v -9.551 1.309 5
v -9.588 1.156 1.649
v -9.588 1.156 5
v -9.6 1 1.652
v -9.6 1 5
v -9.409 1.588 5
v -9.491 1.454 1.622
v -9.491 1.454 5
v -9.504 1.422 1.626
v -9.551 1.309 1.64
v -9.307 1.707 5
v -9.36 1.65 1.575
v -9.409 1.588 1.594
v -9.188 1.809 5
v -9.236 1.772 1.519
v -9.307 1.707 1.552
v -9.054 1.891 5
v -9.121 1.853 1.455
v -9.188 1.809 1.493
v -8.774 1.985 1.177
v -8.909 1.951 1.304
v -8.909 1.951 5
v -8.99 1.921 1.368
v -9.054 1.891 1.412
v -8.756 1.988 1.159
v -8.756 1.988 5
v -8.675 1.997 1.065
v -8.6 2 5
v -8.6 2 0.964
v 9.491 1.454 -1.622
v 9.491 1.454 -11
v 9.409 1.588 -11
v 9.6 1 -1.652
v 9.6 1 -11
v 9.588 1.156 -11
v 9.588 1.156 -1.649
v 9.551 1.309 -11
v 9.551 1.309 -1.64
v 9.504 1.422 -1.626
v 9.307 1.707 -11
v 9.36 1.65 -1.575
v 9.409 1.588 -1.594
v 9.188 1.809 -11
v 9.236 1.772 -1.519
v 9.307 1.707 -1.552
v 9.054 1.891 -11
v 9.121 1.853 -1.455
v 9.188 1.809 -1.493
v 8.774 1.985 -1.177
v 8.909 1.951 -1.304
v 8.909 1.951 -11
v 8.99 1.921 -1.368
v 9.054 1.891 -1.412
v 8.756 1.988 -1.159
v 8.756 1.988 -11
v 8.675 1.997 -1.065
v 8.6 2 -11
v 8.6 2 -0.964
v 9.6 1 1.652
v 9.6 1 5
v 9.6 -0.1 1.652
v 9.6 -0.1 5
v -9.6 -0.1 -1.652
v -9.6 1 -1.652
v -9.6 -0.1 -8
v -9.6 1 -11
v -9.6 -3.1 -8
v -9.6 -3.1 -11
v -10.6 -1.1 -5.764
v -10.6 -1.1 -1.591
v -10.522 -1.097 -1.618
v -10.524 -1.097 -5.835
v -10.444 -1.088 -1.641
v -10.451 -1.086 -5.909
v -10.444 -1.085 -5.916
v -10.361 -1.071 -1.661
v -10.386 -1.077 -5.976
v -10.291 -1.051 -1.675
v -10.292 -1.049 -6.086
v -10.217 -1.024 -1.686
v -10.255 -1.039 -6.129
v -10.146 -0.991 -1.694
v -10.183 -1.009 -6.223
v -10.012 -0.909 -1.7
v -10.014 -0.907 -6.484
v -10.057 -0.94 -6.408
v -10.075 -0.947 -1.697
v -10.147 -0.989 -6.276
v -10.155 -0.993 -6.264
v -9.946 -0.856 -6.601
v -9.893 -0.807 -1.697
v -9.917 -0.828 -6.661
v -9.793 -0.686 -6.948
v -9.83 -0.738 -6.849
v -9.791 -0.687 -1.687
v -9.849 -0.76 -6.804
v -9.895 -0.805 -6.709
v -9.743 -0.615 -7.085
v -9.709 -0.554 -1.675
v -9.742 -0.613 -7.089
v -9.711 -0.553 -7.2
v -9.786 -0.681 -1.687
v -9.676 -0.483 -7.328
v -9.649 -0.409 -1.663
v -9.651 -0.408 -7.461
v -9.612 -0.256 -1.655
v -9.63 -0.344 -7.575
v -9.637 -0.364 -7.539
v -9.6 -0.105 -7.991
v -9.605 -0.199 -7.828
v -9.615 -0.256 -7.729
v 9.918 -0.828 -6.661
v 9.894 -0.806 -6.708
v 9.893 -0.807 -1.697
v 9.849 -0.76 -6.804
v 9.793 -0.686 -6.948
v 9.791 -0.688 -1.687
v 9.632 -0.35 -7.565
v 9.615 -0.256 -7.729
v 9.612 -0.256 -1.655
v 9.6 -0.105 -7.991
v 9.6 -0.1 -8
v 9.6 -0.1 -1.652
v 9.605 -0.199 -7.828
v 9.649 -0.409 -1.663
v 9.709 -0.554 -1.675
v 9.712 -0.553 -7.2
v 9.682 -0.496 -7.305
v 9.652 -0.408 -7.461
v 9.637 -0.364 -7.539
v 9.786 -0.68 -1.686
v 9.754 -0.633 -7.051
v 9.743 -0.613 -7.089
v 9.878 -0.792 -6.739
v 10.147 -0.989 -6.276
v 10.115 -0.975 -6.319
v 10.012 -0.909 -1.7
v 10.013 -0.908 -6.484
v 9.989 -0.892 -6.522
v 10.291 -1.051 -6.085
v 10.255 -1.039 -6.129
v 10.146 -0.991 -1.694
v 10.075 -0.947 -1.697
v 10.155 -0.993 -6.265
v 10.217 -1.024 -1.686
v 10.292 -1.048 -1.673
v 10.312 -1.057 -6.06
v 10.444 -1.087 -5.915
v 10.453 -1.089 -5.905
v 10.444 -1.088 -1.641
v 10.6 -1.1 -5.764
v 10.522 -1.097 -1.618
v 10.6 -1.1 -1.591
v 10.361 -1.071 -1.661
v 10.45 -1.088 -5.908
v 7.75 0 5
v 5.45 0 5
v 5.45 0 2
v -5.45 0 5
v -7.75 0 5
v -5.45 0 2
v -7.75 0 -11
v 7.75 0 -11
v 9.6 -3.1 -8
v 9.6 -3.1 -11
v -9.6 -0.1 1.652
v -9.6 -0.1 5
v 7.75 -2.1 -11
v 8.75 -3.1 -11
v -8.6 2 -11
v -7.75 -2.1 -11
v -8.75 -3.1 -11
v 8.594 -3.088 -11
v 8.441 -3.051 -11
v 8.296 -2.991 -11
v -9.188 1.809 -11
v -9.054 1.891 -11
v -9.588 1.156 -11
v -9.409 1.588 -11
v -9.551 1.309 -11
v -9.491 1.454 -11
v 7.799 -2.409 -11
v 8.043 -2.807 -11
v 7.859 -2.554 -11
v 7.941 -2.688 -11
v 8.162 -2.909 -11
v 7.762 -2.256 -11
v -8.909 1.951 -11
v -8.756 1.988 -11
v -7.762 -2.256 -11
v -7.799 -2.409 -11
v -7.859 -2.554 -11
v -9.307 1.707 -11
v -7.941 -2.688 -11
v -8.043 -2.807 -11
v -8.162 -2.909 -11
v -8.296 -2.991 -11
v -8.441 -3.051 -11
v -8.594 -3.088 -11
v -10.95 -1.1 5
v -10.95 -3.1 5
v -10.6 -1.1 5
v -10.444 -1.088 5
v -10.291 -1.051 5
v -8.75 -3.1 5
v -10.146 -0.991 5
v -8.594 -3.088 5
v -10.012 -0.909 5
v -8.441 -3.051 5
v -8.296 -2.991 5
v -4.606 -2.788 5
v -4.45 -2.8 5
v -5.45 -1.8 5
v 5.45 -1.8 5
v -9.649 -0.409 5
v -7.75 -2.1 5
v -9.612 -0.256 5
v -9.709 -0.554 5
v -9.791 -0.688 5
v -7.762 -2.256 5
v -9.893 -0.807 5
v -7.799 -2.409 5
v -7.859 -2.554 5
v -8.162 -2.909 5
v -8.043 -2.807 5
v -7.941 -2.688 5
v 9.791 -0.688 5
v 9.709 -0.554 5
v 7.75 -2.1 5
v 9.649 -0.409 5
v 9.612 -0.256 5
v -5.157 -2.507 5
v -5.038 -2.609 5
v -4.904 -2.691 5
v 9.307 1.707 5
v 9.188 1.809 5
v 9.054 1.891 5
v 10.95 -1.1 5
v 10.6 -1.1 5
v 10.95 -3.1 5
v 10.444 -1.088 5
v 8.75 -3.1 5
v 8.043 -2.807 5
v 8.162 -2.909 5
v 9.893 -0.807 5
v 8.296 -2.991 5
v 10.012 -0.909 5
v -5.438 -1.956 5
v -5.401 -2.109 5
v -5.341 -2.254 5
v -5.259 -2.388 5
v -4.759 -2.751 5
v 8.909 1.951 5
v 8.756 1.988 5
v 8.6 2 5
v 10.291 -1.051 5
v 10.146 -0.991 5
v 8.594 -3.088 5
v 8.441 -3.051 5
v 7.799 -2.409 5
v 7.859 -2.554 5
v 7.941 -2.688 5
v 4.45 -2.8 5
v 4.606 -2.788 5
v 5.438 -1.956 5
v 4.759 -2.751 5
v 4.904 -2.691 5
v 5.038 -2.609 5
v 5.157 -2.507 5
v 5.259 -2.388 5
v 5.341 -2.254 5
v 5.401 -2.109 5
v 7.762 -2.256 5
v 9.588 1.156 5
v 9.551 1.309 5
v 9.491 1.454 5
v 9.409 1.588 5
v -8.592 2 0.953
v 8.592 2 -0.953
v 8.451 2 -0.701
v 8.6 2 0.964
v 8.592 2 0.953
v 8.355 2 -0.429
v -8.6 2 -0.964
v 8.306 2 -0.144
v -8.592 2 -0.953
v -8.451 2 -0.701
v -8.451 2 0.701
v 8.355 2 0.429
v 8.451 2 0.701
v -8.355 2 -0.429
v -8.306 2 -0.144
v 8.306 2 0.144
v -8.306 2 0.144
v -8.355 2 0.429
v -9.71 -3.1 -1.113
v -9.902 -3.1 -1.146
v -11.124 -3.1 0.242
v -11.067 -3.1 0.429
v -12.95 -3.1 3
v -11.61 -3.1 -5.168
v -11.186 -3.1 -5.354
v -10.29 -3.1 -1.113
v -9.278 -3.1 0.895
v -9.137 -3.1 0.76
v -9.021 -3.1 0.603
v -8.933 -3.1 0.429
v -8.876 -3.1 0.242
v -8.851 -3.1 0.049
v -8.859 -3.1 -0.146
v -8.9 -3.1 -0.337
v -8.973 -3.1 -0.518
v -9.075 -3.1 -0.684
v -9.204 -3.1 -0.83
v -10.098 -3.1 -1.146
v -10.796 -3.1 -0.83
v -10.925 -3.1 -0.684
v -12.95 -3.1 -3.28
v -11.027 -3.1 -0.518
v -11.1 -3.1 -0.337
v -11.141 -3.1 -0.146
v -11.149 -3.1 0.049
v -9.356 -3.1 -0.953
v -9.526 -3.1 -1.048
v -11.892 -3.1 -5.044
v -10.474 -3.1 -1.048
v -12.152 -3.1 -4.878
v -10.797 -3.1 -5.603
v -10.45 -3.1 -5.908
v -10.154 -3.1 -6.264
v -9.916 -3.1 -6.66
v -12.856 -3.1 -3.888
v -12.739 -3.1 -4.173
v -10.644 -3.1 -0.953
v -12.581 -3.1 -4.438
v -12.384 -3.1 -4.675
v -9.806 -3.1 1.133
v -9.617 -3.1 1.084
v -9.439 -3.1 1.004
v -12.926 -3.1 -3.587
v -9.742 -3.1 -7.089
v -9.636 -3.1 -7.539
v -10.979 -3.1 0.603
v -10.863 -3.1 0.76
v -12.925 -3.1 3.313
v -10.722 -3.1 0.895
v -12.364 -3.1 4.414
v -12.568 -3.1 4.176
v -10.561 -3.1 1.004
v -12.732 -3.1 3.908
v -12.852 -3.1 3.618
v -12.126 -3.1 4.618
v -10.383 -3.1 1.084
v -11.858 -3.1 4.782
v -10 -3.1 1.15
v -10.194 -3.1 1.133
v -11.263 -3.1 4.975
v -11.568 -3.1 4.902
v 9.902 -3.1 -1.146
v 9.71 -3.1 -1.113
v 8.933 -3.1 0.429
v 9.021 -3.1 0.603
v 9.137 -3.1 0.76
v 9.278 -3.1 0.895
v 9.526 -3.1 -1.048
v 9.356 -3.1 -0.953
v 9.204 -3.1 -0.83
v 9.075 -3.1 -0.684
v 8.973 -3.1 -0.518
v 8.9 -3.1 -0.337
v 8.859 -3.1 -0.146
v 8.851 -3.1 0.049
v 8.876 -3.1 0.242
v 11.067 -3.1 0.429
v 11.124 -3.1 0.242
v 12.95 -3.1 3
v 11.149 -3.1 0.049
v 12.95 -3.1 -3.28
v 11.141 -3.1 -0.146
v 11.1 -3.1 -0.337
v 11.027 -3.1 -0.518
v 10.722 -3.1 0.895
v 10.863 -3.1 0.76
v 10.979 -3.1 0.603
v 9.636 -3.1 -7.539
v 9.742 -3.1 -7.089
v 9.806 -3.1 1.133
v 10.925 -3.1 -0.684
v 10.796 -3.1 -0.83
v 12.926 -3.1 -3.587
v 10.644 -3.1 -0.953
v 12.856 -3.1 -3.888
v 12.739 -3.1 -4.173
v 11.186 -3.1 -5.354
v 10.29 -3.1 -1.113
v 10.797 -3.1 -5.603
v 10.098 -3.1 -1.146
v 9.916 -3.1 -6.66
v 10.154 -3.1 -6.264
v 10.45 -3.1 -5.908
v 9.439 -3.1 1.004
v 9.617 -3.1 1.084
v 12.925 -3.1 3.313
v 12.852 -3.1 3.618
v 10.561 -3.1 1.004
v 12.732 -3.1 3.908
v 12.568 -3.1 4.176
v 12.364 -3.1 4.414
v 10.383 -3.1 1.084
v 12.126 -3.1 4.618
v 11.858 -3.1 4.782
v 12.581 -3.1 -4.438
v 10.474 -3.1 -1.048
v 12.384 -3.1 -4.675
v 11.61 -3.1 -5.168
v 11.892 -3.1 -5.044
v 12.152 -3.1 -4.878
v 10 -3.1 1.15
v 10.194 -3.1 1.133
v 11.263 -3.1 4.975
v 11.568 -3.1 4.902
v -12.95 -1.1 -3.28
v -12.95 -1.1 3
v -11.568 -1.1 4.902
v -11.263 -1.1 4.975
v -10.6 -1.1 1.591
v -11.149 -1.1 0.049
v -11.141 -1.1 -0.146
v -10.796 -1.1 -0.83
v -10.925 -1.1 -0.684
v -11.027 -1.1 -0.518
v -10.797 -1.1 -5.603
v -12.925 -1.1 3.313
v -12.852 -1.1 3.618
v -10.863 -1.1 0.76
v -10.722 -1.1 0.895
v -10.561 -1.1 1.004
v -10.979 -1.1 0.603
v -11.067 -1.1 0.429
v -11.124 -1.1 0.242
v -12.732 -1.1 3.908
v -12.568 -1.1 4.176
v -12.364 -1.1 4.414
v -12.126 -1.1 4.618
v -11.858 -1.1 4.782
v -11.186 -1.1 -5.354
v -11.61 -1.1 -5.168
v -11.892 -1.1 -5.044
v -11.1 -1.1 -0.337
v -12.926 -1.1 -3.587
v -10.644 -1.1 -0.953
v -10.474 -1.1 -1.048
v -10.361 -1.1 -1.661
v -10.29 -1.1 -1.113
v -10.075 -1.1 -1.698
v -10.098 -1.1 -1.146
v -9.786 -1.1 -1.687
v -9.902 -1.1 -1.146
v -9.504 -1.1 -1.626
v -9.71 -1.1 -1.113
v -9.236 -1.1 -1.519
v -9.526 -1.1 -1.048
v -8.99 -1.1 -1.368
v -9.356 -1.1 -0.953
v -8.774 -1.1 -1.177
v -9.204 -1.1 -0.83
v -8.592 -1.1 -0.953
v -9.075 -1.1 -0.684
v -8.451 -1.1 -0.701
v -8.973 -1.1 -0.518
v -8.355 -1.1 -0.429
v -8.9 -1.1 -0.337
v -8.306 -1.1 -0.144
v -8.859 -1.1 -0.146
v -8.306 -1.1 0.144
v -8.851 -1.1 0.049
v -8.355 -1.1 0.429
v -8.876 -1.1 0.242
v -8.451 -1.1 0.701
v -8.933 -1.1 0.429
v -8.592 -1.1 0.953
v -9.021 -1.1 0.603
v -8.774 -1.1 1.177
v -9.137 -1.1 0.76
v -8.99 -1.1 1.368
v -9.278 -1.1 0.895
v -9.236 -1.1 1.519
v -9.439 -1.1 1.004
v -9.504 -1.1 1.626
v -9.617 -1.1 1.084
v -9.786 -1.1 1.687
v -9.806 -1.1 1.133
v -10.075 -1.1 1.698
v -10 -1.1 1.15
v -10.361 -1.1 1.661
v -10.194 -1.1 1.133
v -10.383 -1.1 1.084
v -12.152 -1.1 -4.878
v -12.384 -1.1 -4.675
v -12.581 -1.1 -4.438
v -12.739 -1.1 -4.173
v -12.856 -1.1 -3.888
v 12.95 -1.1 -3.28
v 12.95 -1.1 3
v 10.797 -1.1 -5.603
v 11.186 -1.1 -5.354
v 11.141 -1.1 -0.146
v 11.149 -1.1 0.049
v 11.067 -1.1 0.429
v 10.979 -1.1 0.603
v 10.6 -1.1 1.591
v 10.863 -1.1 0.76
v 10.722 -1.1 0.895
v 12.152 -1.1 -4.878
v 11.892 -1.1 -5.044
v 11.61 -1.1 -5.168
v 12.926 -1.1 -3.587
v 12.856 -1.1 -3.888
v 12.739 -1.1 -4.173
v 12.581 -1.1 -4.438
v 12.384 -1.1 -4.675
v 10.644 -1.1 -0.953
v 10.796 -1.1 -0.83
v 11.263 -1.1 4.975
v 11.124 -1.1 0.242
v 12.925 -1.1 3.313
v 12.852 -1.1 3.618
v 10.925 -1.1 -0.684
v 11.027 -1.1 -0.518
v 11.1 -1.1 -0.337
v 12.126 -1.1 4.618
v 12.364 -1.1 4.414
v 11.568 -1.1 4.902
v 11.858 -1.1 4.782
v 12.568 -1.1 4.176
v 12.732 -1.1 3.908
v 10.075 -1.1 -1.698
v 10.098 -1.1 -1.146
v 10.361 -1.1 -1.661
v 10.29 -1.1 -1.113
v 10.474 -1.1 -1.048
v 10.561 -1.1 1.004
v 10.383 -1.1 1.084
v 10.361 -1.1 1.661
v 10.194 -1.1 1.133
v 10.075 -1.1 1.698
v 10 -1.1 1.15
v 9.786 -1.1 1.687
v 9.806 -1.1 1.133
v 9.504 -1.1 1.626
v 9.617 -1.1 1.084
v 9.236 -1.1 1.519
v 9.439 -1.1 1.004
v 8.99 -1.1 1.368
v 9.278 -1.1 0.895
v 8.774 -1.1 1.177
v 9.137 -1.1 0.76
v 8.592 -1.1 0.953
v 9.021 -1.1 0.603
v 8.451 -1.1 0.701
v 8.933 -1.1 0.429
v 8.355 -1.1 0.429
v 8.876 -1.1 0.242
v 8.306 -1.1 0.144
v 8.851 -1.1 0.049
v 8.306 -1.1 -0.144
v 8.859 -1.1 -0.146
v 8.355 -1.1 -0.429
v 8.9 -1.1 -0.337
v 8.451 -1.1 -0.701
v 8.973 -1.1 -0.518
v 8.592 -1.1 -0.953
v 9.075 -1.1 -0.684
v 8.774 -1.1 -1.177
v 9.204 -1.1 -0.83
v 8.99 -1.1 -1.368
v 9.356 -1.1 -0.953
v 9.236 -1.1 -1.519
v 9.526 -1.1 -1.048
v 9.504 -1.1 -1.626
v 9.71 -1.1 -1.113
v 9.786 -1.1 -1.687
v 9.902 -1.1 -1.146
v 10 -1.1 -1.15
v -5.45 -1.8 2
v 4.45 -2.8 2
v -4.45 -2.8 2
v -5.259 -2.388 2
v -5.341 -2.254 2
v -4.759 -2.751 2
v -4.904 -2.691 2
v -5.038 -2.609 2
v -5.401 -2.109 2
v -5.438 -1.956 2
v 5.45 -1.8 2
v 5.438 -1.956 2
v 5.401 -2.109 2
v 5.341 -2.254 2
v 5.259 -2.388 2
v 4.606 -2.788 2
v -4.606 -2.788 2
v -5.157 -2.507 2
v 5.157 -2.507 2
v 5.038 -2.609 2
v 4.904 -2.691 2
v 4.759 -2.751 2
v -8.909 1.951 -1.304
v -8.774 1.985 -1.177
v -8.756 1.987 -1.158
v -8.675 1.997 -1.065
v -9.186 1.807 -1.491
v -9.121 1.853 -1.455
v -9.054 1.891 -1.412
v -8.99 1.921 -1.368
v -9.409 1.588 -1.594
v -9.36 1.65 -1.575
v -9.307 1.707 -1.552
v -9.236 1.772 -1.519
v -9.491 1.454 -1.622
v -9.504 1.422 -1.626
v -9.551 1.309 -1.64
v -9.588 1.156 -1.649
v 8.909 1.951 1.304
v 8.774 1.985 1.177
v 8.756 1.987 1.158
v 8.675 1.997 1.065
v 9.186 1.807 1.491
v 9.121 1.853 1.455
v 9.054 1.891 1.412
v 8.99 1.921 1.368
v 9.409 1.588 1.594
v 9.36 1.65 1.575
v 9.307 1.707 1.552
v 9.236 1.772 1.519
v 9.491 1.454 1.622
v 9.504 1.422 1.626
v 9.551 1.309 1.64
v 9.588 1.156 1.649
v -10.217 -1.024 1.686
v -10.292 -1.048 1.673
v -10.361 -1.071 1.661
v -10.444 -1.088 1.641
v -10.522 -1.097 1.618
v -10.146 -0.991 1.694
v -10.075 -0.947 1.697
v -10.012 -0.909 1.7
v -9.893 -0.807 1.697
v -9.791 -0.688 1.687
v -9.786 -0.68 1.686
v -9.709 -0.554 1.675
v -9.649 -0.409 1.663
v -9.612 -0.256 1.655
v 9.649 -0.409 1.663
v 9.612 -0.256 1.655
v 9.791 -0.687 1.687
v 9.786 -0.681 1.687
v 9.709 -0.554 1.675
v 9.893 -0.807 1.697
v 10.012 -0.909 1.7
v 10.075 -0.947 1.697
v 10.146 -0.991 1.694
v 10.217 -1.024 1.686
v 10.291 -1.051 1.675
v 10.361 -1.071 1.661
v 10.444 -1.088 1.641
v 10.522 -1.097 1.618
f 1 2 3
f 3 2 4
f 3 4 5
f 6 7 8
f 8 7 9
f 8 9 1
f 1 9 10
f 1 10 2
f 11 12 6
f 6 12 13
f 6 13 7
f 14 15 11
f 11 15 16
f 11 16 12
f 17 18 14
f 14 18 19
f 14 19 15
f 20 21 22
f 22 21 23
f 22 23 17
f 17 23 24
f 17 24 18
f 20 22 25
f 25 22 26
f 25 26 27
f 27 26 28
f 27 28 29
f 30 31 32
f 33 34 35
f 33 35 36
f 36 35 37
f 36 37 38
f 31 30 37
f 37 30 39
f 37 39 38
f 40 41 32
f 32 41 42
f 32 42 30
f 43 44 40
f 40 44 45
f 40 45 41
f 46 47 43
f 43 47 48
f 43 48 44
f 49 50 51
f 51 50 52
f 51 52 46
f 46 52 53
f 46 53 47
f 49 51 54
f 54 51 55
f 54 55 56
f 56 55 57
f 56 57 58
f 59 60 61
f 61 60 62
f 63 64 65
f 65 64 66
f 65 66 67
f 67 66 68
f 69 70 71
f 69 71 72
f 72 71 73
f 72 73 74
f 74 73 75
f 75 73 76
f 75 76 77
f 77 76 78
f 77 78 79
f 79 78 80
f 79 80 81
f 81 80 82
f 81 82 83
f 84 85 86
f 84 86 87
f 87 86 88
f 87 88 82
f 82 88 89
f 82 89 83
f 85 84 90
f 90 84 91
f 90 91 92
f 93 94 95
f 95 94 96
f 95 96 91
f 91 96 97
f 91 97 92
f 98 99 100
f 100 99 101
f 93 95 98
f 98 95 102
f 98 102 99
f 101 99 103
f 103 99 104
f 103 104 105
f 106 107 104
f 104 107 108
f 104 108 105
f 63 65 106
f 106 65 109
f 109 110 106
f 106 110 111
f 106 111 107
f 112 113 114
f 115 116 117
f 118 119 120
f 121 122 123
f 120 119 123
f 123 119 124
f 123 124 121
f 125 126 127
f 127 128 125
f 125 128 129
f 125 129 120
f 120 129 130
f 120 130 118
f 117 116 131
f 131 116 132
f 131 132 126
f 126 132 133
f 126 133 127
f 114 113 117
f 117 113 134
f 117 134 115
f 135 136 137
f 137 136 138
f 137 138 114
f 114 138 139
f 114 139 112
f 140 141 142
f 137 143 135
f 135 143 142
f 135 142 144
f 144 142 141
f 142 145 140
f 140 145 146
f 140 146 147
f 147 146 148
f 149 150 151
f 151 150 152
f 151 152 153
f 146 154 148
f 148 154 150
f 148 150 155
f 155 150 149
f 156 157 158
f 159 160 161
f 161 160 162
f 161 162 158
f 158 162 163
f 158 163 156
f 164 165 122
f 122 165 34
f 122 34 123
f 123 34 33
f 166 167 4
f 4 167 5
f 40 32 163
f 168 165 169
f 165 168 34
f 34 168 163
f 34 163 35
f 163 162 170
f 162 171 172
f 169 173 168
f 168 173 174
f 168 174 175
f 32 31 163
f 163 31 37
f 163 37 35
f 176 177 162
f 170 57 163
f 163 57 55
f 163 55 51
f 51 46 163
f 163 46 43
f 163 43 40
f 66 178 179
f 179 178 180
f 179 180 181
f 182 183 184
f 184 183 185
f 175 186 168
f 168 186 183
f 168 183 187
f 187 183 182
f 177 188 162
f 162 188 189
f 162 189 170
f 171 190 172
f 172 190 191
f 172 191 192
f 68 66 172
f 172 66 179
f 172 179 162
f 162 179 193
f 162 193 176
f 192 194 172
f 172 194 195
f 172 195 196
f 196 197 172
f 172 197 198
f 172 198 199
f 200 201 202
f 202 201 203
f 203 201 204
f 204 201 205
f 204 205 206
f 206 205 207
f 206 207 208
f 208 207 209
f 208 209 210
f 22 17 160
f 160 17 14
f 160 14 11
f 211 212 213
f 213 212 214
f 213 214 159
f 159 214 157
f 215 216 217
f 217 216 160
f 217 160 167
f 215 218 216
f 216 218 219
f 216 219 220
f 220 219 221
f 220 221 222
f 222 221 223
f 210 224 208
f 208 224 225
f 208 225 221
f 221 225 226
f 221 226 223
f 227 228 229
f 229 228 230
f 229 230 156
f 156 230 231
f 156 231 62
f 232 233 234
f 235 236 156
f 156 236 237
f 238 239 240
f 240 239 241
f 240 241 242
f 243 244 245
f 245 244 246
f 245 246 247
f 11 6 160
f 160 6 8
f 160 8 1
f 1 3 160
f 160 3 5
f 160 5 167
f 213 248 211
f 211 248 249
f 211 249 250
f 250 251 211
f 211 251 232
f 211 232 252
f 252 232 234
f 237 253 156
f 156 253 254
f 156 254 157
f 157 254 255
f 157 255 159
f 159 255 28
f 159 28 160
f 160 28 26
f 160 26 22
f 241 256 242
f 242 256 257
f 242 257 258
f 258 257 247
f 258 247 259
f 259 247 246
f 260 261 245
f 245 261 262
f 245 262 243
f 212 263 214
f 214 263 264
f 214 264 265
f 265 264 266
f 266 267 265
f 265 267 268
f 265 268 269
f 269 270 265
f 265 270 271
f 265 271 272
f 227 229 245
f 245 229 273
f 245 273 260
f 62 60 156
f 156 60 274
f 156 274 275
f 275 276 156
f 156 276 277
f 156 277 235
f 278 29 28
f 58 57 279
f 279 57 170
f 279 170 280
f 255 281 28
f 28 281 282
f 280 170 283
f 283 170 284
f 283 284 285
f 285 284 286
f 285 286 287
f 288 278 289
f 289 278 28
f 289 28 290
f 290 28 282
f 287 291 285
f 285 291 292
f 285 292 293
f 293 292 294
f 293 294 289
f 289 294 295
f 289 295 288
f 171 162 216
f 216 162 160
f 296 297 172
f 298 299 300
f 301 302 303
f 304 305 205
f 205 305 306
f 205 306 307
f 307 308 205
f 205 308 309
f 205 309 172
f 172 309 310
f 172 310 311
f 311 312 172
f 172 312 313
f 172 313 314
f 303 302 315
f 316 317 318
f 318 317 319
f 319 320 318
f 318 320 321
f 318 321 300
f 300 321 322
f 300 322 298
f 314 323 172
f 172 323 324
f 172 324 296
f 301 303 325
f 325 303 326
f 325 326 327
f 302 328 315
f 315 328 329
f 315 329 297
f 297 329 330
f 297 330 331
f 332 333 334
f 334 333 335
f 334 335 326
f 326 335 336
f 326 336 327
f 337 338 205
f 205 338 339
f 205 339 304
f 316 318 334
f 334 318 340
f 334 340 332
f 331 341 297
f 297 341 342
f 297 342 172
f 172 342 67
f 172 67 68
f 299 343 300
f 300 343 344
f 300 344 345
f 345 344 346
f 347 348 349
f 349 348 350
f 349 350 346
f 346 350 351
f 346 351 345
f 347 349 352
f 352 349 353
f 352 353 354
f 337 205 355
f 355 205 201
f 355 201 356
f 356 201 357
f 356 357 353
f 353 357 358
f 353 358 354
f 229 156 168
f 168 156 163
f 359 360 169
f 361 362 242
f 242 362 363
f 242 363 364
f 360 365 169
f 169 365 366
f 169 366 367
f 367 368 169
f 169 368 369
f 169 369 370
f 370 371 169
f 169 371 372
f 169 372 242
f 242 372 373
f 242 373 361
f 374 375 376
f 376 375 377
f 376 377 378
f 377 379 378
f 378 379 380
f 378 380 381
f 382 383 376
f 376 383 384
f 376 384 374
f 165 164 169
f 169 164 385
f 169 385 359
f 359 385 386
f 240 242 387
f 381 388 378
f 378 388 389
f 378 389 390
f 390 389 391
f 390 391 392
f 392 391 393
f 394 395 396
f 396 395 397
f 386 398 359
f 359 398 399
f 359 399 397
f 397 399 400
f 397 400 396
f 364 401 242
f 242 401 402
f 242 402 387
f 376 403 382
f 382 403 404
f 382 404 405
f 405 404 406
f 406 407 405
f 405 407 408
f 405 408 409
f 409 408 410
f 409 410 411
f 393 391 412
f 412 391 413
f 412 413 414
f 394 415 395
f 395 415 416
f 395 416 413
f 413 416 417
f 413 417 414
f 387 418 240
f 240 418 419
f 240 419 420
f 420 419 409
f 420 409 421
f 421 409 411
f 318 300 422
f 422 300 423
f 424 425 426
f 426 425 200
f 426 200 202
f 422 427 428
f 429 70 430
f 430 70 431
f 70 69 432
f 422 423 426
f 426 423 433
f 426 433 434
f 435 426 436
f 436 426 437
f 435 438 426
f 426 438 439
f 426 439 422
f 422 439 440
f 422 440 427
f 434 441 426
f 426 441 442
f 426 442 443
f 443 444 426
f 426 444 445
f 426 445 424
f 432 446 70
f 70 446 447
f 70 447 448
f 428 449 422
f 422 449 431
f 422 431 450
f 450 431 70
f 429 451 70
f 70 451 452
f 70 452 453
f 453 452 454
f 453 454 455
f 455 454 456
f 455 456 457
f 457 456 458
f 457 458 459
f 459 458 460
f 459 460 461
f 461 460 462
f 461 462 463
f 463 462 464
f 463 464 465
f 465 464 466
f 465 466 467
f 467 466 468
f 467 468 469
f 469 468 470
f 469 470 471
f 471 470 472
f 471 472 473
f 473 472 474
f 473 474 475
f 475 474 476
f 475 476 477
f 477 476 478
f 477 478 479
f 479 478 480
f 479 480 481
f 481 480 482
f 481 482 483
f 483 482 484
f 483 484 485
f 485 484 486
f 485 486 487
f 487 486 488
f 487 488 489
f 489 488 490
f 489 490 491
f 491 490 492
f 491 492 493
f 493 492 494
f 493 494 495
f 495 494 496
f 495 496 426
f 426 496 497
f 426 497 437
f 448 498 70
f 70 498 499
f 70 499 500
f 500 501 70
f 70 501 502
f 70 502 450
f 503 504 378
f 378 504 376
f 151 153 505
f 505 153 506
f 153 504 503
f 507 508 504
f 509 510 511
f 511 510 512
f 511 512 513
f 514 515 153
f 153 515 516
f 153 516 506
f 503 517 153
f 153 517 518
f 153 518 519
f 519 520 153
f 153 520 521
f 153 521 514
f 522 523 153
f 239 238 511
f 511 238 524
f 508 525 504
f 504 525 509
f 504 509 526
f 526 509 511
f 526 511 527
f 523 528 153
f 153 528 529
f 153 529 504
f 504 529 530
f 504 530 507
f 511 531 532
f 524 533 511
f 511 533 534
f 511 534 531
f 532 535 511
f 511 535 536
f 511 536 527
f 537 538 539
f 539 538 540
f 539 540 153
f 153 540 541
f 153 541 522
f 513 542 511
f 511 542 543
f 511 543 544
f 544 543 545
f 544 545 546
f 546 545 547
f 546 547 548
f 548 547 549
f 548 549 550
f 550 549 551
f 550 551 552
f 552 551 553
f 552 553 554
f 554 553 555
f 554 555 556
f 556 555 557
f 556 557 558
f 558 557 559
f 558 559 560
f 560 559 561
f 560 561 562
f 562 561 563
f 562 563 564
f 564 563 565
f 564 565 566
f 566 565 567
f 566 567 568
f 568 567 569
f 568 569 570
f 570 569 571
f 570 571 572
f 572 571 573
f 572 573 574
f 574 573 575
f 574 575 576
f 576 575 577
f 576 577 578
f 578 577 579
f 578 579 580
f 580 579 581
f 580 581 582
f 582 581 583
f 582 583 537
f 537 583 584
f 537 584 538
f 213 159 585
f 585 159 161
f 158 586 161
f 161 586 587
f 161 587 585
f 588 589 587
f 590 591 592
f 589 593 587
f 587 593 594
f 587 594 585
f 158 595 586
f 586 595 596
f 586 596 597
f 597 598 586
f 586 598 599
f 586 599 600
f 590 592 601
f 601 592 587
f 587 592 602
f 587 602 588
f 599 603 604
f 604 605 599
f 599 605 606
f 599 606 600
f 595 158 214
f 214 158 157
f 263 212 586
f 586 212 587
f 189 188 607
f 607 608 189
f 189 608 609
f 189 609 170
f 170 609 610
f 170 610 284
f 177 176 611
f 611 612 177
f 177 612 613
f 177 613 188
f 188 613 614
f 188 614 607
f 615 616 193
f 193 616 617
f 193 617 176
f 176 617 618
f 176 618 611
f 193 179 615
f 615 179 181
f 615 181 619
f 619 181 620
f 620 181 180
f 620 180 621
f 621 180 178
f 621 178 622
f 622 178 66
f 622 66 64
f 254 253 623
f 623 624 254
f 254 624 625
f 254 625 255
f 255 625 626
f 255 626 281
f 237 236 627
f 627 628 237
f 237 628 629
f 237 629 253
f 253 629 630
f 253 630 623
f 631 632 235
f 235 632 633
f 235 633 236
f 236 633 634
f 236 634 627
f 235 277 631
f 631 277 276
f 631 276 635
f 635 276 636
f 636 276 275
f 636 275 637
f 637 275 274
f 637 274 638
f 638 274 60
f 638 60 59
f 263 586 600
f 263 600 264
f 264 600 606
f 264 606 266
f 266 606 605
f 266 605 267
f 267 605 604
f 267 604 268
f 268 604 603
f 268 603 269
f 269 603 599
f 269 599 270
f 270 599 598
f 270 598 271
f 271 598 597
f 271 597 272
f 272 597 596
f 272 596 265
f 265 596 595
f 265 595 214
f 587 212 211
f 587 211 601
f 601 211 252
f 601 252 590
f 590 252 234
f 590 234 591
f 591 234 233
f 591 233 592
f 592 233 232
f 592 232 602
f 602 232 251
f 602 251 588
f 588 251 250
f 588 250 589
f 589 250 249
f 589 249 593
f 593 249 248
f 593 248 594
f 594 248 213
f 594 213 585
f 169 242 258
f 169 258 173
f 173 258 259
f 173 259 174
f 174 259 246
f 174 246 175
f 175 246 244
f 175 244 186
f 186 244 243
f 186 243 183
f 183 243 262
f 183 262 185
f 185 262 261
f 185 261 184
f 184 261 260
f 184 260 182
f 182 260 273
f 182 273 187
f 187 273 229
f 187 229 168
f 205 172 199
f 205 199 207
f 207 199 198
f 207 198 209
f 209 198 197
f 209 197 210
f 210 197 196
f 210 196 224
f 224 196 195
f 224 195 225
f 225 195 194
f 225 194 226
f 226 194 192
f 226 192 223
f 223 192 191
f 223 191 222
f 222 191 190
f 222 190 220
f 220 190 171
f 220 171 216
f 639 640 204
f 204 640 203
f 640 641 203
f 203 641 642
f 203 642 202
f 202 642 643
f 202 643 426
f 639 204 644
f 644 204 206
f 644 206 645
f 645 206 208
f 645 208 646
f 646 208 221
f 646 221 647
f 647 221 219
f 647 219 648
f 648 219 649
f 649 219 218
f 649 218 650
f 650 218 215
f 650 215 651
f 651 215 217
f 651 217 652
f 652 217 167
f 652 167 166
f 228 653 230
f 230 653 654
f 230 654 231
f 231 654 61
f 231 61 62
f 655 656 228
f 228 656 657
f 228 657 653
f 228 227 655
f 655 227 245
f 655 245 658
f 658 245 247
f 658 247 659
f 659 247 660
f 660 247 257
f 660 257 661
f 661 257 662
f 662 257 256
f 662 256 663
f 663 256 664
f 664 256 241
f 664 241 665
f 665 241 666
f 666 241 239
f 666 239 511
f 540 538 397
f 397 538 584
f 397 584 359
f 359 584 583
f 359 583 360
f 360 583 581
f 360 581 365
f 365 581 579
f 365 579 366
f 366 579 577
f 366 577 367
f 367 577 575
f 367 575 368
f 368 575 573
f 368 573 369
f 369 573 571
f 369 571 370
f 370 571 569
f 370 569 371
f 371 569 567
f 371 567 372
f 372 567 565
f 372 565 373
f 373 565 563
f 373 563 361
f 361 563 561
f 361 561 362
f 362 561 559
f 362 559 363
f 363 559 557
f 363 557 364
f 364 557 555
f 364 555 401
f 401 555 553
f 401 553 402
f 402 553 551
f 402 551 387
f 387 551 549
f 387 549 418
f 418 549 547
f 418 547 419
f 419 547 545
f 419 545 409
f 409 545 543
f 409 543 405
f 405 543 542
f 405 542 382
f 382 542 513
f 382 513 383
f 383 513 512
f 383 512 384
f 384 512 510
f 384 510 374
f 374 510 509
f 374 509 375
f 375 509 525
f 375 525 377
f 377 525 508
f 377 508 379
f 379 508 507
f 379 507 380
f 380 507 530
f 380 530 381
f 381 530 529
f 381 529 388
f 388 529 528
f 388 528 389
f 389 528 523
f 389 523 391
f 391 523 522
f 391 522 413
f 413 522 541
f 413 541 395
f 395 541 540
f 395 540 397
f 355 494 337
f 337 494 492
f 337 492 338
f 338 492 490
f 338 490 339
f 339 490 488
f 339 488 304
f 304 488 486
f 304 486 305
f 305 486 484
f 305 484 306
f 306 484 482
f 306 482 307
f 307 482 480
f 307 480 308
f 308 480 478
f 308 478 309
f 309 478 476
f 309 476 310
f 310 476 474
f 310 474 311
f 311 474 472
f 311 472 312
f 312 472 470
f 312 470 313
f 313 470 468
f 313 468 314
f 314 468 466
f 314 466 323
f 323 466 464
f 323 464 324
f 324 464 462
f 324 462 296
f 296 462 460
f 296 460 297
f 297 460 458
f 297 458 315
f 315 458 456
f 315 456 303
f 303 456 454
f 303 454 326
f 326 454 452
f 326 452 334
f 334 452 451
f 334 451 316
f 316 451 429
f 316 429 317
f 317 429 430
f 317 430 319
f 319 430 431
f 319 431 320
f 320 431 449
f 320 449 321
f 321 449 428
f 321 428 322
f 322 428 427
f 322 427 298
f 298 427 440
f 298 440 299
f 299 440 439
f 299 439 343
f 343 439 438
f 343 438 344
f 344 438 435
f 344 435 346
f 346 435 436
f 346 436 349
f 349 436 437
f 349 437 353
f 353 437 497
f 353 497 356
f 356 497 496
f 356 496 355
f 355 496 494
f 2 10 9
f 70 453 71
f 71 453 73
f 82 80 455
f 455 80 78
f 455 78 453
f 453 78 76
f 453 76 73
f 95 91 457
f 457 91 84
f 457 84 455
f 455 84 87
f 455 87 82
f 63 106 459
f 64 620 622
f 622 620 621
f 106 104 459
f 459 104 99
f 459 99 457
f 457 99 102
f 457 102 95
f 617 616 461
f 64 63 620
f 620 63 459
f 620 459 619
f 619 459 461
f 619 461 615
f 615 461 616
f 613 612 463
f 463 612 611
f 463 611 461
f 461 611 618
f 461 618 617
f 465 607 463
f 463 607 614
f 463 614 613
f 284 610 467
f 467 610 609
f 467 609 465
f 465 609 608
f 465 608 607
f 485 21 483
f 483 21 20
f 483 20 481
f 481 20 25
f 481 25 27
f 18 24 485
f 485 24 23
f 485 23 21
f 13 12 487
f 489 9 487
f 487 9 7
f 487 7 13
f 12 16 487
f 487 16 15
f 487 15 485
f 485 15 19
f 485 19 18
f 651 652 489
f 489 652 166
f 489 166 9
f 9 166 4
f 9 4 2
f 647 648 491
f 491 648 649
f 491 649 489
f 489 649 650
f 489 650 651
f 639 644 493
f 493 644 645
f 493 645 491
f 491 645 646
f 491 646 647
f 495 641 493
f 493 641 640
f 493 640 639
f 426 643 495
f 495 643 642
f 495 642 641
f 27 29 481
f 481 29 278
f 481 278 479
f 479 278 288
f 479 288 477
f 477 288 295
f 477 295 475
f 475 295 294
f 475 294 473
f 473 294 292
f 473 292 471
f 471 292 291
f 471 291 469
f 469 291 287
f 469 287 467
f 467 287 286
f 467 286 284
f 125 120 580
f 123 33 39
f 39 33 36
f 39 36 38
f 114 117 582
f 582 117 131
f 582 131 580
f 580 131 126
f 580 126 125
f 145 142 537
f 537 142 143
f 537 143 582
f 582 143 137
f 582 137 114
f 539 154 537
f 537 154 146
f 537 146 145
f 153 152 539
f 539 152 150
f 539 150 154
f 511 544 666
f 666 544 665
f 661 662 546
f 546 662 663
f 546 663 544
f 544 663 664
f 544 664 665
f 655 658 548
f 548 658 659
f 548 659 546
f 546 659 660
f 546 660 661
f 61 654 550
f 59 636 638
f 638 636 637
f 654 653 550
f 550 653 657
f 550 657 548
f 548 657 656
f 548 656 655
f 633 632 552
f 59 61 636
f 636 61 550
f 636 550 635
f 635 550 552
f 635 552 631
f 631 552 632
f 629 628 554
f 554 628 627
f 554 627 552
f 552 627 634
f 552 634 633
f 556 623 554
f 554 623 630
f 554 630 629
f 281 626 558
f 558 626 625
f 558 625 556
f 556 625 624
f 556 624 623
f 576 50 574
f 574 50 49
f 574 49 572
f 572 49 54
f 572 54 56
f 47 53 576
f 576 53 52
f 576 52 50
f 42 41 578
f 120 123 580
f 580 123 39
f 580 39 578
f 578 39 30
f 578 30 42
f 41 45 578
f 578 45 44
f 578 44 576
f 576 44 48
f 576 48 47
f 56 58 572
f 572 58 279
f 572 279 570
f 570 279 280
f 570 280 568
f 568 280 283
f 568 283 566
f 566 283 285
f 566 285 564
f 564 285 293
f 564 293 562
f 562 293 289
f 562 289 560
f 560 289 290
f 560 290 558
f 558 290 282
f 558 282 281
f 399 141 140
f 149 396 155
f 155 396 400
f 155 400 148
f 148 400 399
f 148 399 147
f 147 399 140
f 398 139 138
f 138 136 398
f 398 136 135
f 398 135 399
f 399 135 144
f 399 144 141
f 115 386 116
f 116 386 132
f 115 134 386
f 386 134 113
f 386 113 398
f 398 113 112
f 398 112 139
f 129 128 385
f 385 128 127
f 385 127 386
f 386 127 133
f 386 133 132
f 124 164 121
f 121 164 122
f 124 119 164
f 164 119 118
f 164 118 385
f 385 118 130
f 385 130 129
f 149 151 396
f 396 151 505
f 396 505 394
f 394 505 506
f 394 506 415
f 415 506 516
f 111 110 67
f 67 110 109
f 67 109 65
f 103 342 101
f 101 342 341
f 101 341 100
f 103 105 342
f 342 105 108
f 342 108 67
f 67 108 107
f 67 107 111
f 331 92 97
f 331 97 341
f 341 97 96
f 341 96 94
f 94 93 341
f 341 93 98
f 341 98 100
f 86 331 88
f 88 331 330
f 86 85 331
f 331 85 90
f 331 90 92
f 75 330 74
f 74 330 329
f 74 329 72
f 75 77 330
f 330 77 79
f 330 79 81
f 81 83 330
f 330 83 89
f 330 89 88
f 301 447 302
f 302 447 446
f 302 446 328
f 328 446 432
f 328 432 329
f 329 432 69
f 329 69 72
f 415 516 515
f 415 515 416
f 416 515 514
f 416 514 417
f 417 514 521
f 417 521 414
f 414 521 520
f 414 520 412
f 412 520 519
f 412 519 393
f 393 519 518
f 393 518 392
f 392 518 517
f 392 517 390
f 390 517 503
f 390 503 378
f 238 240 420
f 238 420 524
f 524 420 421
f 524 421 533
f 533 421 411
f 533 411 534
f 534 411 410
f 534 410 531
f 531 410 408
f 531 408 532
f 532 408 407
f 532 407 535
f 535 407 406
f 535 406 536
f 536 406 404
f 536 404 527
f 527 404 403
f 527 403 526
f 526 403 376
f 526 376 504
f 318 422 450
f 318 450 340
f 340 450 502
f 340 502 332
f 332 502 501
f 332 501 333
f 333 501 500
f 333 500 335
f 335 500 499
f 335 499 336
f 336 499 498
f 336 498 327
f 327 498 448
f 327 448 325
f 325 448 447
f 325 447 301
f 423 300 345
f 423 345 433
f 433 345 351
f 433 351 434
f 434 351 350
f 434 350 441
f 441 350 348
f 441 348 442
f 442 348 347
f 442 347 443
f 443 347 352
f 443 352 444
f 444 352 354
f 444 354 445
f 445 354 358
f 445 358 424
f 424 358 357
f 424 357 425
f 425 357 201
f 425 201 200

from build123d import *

# Parameters (mm, degrees)
BOSS_EXTRUDE1_DEPTH = 2
SKETCH3_W           = 1.85
SKETCH3_H           = 16
BOSS_EXTRUDE2_DEPTH = 3.1
SKETCH4_W           = 3.35
SKETCH4_H           = 10
BOSS_EXTRUDE3_DEPTH = 2
SKETCH5_W           = 10.9
SKETCH5_H           = 3
BOSS_EXTRUDE4_DEPTH = 2.8
FILLET2_R           = 1
SKETCH7_R           = 1.15
CUT_EXTRUDE2_DEPTH  = 18.740138105
CUT_EXTRUDE3_REACH  = 19.74
SKETCH8_R           = 1.7
FILLET3_START       = -6.300522805
FILLET3_DEPTH       = 1.300522805
FILLET3_START_2     = -8.0000001
FILLET3_2_DEPTH     = 1.699477295
FILLET3_3_DEPTH     = 1.300522805
FILLET3_START_3     = -1.1
FILLET3_4_DEPTH     = 2.1
FILLET3_START_4     = -3.1
FILLET3_5_DEPTH     = 2
FILLET4_R           = 2


with BuildPart() as part:
    # Sketch2 → Boss-Extrude1 (new body)
    with BuildSketch(Plane(origin=(0, 0, 0), x_dir=(1, 0, 0), z_dir=(0, 1, 0))):
        Polygon((9.6, -5), (-9.6, -5), (-9.6, 5), (-9.6, 11), (9.6, 11), (9.6, 5), align=None)
    extrude(amount=BOSS_EXTRUDE1_DEPTH)

    # Sketch3 → Boss-Extrude2 (add)
    with BuildSketch(Plane(origin=(0, 0, 0), x_dir=(1, 0, 0), z_dir=(0, 1, 0))):
        with Locations((-8.675, 3)):
            Rectangle(SKETCH3_W, SKETCH3_H)
        with Locations((8.675, 3)):
            Rectangle(SKETCH3_W, SKETCH3_H)
    extrude(amount=-BOSS_EXTRUDE2_DEPTH)

    # Sketch4 → Boss-Extrude3 (add)
    with BuildSketch(Plane(origin=(0, -3.1, 0), x_dir=(1, 0, 0), z_dir=(0, 1, 0))):
        with Locations((-11.275, 0)):
            Rectangle(SKETCH4_W, SKETCH4_H)
        with Locations((11.275, 0)):
            Rectangle(SKETCH4_W, SKETCH4_H)
    extrude(amount=BOSS_EXTRUDE3_DEPTH)

    # Sketch5 → Boss-Extrude4 (add)
    with BuildSketch(Plane.XZ):
        with Locations((0, 3.5)):
            Rectangle(SKETCH5_W, SKETCH5_H)
    extrude(amount=BOSS_EXTRUDE4_DEPTH)

    # Fillet2
    fillet2_edges = [part.edges().sort_by_distance(p)[0] for p in [
        (-9.6, 2, -3),
        (-7.75, -3.1, -3),
        (7.75, -3.1, -3),
        (9.6, 2, -3),
        (-9.6, -1.1, 0),
        (9.6, -1.1, 0),
        (-5.45, -2.8, 3.5),
        (5.45, -2.8, 3.5),
    ]]
    fillet(fillet2_edges, radius=FILLET2_R)

    # Sketch7 → Cut-Extrude2 (cut, through all)
    with BuildSketch(Plane(origin=(0, 2, 0), x_dir=(1, 0, 0), z_dir=(0, 1, 0))):
        with Locations(Location((-10, 0, 0), (0, 0, 270))):
            Circle(SKETCH7_R)
        with Locations(Location((10, 0, 0), (0, 0, 270))):
            Circle(SKETCH7_R)
    extrude(amount=-CUT_EXTRUDE2_DEPTH, mode=Mode.SUBTRACT)

    # Cut-Extrude3: up to this face of the body (flat: up to its plane)
    cut_extrude3_end = Plane(part.part.faces().sort_by_distance((11.806864318, -1.1, 0))[0])
    # Sketch8 → Cut-Extrude3 (cut, up to the picked face)
    with BuildSketch(Plane(origin=(0, 2, 0), x_dir=(1, 0, 0), z_dir=(0, 1, 0)), mode=Mode.PRIVATE) as cut_extrude3_sk1:
        with Locations((-10, 0)):
            Circle(SKETCH8_R)
    cut_extrude3_tool1 = split(extrude(cut_extrude3_sk1.sketch, amount=-CUT_EXTRUDE3_REACH, mode=Mode.PRIVATE), bisect_by=cut_extrude3_end, keep=Keep.BOTH, mode=Mode.PRIVATE)
    # Sketch8 → Cut-Extrude3 (cut, up to the picked face)
    with BuildSketch(Plane(origin=(0, 2, 0), x_dir=(1, 0, 0), z_dir=(0, 1, 0)), mode=Mode.PRIVATE) as cut_extrude3_sk2:
        with Locations((10, 0)):
            Circle(SKETCH8_R)
    cut_extrude3_tool2 = split(extrude(cut_extrude3_sk2.sketch, amount=-CUT_EXTRUDE3_REACH, mode=Mode.PRIVATE), bisect_by=cut_extrude3_end, keep=Keep.BOTH, mode=Mode.PRIVATE)
    add(cut_extrude3_tool1.solids().sort_by(Axis((-10, 2, 0), (0, -1, 0)))[0], mode=Mode.SUBTRACT)
    add(cut_extrude3_tool2.solids().sort_by(Axis((10, 2, 0), (0, -1, 0)))[0], mode=Mode.SUBTRACT)

    # Fillet3: read off the stored shape, not the designer's step
    # Fillet3 outline → Fillet3 (add)
    with BuildSketch(Plane.XY.offset(FILLET3_START)):
        with BuildLine():
            Line((9.6, -1.1), (10.6, -1.1))
            ThreePointArc((10.6, -1.1), (9.892893219, -0.807106781), (9.6, -0.1))
            Line((9.6, -0.1), (9.6, -1.1))
        make_face()
    extrude(amount=FILLET3_DEPTH)

    # Fillet3 2 outline → Fillet3 2 (add)
    with BuildSketch(Plane.XY.offset(FILLET3_START_2)):
        with BuildLine():
            Line((-9.6, -1.1), (-9.6, -0.1))
            ThreePointArc((-9.6, -0.1), (-9.892893219, -0.807106781), (-10.6, -1.1))
            Line((-10.6, -1.1), (-9.6, -1.1))
        make_face()
        with BuildLine():
            Line((9.6, -1.1), (10.6, -1.1))
            ThreePointArc((10.6, -1.1), (9.892893219, -0.807106781), (9.6, -0.1))
            Line((9.6, -0.1), (9.6, -1.1))
        make_face()
    extrude(amount=FILLET3_2_DEPTH)

    # Fillet3 3 outline → Fillet3 3 (add)
    with BuildSketch(Plane.XY.offset(FILLET3_START)):
        with BuildLine():
            Line((-9.6, -1.1), (-9.6, -0.1))
            ThreePointArc((-9.6, -0.1), (-9.892893219, -0.807106781), (-10.6, -1.1))
            Line((-10.6, -1.1), (-9.6, -1.1))
        make_face()
    extrude(amount=FILLET3_3_DEPTH)

    # Fillet3 4 outline → Fillet3 4 (cut)
    with BuildSketch(Plane(origin=(0, 0, 0), x_dir=(1, 0, 0), z_dir=(0, 1, 0)).offset(FILLET3_START_3)):
        with BuildLine():
            Line((14, 8.0000001), (9.6, 8))
            ThreePointArc((9.6, 8), (10.478679656, 5.878679656), (12.6, 5))
            Line((12.6, 5), (12.95, 5))
            Line((12.95, 5), (14, 5.000000001))
            Line((14, 5.000000001), (14, 8.0000001))
        make_face()
        with BuildLine():
            Line((-12.95, 5), (-12.6, 5))
            ThreePointArc((-12.6, 5), (-10.478679656, 5.878679656), (-9.6, 8))
            Line((-9.6, 8), (-14, 8.0000001))
            Line((-14, 8.0000001), (-14, 5))
            Line((-14, 5), (-12.95, 5))
        make_face()
    extrude(amount=FILLET3_4_DEPTH, mode=Mode.SUBTRACT)

    # Fillet3 5 outline → Fillet3 5 (add)
    with BuildSketch(Plane(origin=(0, 0, 0), x_dir=(1, 0, 0), z_dir=(0, 1, 0)).offset(FILLET3_START_4)):
        with BuildLine():
            ThreePointArc((12.6, 5), (10.478679656, 5.878679656), (9.6, 8))
            Line((9.6, 8), (9.6, 5))
            Line((9.6, 5), (12.6, 5))
        make_face()
        with BuildLine():
            Line((-12.6, 5), (-9.6, 5))
            Line((-9.6, 5), (-9.6, 8))
            ThreePointArc((-9.6, 8), (-10.478679656, 5.878679656), (-12.6, 5))
        make_face()
    extrude(amount=FILLET3_5_DEPTH)

    # Fillet4
    fillet4_edges = [part.edges().sort_by_distance(p)[0] for p in [
        (12.95, -2.1, -5),
        (12.95, -2.1, 5),
        (-12.95, -2.1, -5),
        (-12.95, -2.1, 5),
    ]]
    fillet(fillet4_edges, radius=FILLET4_R)


solid = part.part
